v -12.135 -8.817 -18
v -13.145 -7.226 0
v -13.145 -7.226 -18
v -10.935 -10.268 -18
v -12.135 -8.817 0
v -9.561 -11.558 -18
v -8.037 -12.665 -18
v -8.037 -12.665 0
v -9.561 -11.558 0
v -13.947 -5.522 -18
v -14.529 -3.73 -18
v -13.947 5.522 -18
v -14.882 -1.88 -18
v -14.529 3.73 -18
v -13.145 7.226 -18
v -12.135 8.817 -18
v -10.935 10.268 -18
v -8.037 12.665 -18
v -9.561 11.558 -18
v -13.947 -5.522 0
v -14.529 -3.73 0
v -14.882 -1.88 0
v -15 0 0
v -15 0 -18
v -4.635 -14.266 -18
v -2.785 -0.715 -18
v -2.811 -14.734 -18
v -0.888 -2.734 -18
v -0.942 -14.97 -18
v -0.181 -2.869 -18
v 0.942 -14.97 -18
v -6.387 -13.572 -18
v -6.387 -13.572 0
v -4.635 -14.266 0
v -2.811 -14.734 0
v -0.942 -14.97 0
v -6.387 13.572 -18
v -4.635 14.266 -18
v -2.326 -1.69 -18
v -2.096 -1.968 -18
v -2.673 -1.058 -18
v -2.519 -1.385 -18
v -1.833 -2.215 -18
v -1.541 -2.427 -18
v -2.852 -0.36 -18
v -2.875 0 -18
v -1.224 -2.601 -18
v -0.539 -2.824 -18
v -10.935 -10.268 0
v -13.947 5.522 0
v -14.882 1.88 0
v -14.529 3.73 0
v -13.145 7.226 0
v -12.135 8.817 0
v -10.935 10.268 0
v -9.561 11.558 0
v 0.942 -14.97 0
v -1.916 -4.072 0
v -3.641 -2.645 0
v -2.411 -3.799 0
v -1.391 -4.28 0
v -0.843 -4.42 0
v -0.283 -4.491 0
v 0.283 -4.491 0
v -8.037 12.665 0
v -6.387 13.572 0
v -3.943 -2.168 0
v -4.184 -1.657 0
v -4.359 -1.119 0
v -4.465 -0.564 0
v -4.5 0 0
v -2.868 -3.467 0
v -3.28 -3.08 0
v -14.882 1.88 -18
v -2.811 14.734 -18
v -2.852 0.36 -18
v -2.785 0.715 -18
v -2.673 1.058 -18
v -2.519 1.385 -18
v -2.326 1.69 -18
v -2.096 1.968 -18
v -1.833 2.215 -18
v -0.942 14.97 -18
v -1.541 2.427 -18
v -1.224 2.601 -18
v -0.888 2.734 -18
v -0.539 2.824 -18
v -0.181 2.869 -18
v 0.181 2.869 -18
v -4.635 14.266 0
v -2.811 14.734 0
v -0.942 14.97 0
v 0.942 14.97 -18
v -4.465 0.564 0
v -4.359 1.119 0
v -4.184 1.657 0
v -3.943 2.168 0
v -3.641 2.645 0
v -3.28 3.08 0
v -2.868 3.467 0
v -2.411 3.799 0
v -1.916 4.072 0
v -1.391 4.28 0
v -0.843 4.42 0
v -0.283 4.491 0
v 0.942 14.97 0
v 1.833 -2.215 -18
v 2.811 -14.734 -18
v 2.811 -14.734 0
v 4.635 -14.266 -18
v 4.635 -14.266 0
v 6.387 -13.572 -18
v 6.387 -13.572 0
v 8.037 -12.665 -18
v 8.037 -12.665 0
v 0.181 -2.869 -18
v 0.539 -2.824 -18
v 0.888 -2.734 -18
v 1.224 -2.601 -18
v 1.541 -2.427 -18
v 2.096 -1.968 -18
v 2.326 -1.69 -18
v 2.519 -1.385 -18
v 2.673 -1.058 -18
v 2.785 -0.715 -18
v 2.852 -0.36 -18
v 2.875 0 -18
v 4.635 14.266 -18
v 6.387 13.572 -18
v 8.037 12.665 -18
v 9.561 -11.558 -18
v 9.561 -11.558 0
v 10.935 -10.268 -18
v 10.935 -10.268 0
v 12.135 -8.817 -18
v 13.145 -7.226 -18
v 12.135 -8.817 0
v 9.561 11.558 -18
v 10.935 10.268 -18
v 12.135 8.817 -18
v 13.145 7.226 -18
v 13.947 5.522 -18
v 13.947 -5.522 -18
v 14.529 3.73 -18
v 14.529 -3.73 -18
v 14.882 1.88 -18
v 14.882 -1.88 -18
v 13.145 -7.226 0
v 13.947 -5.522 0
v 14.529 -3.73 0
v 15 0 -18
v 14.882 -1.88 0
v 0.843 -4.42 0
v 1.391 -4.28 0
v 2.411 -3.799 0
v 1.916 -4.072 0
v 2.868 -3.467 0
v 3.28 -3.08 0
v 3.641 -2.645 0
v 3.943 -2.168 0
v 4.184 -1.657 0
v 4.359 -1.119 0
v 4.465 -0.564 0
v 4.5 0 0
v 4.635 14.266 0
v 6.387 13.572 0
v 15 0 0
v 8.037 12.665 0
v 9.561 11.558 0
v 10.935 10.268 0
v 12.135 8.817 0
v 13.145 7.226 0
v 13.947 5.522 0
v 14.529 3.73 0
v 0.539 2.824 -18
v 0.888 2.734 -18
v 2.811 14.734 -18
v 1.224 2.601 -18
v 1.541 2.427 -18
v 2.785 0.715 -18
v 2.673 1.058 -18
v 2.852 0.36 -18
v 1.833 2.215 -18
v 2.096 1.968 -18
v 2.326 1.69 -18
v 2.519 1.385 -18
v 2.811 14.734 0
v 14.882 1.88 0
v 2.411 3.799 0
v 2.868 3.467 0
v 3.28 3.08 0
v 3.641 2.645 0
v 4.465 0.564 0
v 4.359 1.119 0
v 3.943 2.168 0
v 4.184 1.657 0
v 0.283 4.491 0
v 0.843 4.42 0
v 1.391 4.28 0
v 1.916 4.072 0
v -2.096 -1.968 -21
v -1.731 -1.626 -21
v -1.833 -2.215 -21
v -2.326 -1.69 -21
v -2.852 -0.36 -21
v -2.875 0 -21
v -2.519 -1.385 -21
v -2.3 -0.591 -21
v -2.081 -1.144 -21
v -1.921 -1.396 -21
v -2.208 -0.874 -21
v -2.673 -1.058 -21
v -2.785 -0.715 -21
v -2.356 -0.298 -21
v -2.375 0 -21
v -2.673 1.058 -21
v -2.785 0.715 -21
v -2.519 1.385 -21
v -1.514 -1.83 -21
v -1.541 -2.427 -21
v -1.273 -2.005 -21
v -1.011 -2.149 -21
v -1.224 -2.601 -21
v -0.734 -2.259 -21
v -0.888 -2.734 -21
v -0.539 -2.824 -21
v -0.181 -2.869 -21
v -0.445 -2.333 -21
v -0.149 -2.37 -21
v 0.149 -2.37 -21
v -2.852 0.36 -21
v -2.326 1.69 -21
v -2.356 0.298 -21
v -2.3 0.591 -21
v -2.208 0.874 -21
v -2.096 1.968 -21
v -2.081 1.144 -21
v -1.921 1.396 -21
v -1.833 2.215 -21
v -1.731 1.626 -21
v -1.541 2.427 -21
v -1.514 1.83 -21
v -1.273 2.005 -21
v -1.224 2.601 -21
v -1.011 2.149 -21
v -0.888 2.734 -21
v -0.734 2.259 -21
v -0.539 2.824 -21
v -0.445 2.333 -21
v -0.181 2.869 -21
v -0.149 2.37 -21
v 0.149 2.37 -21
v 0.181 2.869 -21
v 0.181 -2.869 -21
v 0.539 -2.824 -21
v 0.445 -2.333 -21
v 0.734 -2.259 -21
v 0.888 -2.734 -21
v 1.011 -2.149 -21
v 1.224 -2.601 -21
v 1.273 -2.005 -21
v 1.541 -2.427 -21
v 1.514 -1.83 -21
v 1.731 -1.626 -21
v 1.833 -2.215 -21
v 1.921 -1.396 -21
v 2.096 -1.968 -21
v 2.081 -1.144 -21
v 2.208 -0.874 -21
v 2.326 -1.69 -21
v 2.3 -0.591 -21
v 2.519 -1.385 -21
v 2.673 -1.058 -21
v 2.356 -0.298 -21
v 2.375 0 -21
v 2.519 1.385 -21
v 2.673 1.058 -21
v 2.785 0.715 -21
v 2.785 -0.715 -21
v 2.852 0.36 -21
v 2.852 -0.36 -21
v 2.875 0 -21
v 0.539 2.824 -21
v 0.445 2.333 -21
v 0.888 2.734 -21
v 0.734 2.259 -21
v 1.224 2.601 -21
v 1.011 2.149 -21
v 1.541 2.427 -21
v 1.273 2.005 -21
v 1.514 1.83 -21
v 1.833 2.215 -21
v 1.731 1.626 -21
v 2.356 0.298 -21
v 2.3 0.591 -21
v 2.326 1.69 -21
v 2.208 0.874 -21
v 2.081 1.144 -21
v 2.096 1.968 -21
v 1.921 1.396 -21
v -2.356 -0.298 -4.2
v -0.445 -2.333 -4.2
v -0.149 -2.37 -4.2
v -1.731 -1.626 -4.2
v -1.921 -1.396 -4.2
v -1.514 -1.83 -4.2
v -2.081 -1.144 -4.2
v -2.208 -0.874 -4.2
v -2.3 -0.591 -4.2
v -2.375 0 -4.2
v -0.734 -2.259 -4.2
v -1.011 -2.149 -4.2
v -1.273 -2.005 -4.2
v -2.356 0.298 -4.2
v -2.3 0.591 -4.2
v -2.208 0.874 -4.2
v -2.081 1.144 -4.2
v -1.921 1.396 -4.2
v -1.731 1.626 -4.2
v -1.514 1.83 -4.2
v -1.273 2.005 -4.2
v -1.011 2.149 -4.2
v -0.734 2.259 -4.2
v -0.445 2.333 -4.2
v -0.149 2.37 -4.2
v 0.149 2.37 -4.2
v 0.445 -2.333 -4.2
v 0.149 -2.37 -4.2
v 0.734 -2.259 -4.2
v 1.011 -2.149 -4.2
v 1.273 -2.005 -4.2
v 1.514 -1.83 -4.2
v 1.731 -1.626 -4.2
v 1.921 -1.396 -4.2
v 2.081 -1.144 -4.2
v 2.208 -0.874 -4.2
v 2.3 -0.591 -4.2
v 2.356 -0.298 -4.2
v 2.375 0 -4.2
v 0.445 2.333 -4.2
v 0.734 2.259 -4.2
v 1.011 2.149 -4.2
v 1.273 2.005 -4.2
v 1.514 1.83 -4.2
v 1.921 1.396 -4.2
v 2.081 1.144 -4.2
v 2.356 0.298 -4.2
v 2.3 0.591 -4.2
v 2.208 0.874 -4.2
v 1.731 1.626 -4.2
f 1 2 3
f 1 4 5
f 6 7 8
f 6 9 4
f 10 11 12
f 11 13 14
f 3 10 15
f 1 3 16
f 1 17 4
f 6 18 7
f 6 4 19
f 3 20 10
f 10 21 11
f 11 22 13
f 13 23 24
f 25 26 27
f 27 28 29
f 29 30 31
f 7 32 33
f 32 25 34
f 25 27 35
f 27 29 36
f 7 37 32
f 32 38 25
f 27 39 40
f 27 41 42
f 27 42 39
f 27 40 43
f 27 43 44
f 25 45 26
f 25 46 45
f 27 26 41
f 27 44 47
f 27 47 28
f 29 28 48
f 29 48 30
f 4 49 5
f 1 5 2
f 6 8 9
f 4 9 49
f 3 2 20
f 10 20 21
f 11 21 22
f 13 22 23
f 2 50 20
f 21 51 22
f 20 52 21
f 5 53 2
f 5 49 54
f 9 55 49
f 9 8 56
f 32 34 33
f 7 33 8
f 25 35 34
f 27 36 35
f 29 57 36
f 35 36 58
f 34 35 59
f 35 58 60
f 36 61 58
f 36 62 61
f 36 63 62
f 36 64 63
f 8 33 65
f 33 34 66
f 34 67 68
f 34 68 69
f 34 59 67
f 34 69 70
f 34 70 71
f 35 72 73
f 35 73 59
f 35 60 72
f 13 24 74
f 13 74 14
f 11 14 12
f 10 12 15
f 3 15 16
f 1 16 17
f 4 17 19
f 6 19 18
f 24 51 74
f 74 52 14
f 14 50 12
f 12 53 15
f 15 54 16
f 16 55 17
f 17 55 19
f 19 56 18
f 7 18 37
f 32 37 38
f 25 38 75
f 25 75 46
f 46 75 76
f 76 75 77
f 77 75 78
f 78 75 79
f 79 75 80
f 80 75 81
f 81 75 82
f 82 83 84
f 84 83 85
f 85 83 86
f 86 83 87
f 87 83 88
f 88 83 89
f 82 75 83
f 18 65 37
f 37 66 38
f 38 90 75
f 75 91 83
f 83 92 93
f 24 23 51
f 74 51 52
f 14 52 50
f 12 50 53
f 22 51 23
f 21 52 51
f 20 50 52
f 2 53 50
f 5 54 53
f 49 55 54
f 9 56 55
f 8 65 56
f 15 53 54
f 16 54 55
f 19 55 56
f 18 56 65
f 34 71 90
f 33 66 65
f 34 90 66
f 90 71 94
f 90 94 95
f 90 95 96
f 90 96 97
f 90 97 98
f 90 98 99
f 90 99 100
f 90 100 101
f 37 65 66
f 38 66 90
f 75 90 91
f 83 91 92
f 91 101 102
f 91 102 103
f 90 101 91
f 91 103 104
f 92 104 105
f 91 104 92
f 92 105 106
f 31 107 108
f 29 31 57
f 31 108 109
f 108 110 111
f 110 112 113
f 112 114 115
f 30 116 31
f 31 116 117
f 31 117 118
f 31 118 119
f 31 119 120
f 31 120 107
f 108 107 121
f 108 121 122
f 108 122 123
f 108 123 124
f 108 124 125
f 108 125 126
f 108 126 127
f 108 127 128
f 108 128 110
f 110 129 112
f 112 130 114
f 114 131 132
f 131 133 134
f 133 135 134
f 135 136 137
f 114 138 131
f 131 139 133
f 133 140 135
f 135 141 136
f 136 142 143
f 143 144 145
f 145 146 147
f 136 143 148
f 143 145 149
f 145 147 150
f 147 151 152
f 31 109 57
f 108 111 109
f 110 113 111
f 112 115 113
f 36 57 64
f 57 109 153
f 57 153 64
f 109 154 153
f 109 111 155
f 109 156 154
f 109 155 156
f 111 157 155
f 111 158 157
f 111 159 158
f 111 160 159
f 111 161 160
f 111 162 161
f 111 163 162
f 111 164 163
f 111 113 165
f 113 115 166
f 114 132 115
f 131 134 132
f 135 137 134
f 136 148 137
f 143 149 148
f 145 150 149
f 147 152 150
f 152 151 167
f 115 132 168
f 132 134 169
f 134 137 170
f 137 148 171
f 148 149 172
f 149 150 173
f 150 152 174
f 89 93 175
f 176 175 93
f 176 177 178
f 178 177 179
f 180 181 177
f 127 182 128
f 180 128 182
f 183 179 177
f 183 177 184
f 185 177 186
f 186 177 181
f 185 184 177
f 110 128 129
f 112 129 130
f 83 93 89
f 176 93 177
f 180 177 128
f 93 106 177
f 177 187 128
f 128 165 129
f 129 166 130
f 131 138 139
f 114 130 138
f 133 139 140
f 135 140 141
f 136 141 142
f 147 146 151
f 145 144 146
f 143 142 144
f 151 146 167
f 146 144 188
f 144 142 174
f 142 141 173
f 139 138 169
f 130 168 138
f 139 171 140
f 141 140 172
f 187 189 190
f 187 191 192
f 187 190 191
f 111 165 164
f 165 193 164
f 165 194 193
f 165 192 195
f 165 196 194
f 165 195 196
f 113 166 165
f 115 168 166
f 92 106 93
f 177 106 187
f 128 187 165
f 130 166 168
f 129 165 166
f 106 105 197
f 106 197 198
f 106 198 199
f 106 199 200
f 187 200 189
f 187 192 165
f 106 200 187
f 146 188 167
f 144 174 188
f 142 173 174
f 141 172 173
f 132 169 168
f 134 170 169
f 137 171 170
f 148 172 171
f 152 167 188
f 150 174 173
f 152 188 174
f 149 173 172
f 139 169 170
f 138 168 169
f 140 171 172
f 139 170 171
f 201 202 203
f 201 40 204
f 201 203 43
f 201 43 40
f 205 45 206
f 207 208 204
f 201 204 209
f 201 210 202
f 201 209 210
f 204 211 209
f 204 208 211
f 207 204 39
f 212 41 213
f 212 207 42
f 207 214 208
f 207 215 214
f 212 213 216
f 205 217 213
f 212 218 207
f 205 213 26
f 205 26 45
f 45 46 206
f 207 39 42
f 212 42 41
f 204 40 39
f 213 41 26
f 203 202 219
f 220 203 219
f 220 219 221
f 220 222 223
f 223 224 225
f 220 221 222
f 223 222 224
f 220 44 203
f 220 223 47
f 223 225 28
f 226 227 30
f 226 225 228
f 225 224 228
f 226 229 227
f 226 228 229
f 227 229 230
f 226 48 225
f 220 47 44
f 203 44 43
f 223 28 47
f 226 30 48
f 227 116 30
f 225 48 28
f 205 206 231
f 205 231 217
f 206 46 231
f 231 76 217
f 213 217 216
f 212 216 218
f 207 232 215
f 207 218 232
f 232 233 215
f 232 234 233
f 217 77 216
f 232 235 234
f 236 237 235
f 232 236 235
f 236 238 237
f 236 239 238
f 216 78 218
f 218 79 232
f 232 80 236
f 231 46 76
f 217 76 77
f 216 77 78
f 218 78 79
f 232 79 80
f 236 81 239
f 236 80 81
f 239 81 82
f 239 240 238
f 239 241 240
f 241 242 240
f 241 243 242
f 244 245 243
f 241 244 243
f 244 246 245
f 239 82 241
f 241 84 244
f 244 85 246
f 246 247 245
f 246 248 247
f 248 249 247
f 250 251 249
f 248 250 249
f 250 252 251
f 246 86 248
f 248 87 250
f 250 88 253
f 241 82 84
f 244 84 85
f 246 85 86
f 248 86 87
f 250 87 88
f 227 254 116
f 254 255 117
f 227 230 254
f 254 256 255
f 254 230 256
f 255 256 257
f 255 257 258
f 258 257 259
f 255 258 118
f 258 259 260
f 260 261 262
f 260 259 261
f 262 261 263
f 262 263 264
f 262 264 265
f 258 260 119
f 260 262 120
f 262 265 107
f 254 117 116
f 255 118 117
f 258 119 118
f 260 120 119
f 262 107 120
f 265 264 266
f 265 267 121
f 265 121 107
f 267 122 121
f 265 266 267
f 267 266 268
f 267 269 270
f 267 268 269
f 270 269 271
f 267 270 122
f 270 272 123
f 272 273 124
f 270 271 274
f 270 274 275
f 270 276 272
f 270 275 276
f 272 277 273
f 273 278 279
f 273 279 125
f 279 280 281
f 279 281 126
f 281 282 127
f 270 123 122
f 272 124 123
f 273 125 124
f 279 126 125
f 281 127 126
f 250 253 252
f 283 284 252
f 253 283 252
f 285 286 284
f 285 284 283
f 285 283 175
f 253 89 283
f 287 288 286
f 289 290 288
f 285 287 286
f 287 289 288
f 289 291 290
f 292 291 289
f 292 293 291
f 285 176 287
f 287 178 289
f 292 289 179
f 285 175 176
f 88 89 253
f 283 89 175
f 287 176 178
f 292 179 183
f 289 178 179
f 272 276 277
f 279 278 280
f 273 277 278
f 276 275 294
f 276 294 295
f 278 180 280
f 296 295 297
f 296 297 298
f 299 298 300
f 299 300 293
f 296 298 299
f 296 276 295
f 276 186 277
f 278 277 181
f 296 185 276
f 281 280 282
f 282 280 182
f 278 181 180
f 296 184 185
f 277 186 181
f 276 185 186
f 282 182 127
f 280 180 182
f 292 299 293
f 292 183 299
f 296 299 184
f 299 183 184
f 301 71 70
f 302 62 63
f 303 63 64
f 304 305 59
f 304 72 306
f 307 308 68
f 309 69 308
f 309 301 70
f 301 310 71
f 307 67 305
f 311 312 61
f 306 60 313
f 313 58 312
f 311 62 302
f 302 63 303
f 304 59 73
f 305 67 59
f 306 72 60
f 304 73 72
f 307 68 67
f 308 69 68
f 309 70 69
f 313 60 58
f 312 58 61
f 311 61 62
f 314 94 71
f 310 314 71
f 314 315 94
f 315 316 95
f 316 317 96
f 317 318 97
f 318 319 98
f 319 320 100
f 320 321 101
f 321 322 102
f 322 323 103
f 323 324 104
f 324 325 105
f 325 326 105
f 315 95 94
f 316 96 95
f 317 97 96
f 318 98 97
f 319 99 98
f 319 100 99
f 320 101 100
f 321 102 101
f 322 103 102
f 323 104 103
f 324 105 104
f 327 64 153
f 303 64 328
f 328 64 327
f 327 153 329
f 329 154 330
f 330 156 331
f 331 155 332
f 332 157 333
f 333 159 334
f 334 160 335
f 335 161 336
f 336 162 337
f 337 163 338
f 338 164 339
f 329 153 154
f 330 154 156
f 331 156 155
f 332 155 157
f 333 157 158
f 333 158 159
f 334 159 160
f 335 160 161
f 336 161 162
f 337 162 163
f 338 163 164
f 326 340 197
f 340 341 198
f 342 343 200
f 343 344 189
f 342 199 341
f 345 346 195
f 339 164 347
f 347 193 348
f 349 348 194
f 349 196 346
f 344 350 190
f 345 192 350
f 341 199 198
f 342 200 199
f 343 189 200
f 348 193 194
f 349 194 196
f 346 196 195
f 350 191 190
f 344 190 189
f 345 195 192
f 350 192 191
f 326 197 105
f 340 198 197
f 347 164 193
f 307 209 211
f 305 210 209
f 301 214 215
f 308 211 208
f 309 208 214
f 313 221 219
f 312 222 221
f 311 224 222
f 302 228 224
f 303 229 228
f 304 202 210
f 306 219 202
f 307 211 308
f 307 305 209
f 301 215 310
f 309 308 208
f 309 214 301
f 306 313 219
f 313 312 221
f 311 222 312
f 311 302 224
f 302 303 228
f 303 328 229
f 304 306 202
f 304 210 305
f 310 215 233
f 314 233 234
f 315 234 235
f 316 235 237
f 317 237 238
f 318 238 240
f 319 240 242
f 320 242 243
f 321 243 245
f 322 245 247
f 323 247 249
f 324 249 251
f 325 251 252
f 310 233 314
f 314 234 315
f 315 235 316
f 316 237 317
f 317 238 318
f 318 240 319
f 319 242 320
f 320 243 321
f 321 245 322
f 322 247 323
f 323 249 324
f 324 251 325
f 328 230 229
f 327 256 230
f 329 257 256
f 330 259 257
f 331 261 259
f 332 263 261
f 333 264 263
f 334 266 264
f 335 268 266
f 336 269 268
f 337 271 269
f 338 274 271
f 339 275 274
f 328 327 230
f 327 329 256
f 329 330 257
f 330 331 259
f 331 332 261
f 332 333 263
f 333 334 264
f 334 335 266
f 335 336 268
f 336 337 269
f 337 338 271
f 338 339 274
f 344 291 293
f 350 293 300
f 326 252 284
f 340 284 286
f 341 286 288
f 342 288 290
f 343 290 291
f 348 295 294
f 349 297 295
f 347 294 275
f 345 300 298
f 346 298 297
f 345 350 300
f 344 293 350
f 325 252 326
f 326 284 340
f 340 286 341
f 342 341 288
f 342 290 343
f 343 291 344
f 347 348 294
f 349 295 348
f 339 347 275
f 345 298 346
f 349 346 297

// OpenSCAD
$fn = 50;

difference() {
	union() {
		translate(v = [0, 0, -18.0]) {
			cylinder(h = 18, r = 15.0);
		}
		#translate(v = [0, 0, -21.0]) {
			cylinder(h = 21, r = 2.875);
		}
	}
	union() {
		translate(v = [0, 0, 0]) {
			rotate(a = [0, 0, 0]) {
				difference() {
					union() {
						translate(v = [0, 0, -21.0]) {
							cylinder(h = 21, r = 2.25);
						}
						translate(v = [0, 0, -4.2]) {
							cylinder(h = 4.2, r1 = 2.375, r2 = 4.5);
						}
						translate(v = [0, 0, -21.0]) {
							cylinder(h = 21, r = 2.375);
						}
						translate(v = [0, 0, -21.0]) {
							cylinder(h = 21, r = 2.25);
						}
					}
					union();
				}
			}
		}
	}
}
